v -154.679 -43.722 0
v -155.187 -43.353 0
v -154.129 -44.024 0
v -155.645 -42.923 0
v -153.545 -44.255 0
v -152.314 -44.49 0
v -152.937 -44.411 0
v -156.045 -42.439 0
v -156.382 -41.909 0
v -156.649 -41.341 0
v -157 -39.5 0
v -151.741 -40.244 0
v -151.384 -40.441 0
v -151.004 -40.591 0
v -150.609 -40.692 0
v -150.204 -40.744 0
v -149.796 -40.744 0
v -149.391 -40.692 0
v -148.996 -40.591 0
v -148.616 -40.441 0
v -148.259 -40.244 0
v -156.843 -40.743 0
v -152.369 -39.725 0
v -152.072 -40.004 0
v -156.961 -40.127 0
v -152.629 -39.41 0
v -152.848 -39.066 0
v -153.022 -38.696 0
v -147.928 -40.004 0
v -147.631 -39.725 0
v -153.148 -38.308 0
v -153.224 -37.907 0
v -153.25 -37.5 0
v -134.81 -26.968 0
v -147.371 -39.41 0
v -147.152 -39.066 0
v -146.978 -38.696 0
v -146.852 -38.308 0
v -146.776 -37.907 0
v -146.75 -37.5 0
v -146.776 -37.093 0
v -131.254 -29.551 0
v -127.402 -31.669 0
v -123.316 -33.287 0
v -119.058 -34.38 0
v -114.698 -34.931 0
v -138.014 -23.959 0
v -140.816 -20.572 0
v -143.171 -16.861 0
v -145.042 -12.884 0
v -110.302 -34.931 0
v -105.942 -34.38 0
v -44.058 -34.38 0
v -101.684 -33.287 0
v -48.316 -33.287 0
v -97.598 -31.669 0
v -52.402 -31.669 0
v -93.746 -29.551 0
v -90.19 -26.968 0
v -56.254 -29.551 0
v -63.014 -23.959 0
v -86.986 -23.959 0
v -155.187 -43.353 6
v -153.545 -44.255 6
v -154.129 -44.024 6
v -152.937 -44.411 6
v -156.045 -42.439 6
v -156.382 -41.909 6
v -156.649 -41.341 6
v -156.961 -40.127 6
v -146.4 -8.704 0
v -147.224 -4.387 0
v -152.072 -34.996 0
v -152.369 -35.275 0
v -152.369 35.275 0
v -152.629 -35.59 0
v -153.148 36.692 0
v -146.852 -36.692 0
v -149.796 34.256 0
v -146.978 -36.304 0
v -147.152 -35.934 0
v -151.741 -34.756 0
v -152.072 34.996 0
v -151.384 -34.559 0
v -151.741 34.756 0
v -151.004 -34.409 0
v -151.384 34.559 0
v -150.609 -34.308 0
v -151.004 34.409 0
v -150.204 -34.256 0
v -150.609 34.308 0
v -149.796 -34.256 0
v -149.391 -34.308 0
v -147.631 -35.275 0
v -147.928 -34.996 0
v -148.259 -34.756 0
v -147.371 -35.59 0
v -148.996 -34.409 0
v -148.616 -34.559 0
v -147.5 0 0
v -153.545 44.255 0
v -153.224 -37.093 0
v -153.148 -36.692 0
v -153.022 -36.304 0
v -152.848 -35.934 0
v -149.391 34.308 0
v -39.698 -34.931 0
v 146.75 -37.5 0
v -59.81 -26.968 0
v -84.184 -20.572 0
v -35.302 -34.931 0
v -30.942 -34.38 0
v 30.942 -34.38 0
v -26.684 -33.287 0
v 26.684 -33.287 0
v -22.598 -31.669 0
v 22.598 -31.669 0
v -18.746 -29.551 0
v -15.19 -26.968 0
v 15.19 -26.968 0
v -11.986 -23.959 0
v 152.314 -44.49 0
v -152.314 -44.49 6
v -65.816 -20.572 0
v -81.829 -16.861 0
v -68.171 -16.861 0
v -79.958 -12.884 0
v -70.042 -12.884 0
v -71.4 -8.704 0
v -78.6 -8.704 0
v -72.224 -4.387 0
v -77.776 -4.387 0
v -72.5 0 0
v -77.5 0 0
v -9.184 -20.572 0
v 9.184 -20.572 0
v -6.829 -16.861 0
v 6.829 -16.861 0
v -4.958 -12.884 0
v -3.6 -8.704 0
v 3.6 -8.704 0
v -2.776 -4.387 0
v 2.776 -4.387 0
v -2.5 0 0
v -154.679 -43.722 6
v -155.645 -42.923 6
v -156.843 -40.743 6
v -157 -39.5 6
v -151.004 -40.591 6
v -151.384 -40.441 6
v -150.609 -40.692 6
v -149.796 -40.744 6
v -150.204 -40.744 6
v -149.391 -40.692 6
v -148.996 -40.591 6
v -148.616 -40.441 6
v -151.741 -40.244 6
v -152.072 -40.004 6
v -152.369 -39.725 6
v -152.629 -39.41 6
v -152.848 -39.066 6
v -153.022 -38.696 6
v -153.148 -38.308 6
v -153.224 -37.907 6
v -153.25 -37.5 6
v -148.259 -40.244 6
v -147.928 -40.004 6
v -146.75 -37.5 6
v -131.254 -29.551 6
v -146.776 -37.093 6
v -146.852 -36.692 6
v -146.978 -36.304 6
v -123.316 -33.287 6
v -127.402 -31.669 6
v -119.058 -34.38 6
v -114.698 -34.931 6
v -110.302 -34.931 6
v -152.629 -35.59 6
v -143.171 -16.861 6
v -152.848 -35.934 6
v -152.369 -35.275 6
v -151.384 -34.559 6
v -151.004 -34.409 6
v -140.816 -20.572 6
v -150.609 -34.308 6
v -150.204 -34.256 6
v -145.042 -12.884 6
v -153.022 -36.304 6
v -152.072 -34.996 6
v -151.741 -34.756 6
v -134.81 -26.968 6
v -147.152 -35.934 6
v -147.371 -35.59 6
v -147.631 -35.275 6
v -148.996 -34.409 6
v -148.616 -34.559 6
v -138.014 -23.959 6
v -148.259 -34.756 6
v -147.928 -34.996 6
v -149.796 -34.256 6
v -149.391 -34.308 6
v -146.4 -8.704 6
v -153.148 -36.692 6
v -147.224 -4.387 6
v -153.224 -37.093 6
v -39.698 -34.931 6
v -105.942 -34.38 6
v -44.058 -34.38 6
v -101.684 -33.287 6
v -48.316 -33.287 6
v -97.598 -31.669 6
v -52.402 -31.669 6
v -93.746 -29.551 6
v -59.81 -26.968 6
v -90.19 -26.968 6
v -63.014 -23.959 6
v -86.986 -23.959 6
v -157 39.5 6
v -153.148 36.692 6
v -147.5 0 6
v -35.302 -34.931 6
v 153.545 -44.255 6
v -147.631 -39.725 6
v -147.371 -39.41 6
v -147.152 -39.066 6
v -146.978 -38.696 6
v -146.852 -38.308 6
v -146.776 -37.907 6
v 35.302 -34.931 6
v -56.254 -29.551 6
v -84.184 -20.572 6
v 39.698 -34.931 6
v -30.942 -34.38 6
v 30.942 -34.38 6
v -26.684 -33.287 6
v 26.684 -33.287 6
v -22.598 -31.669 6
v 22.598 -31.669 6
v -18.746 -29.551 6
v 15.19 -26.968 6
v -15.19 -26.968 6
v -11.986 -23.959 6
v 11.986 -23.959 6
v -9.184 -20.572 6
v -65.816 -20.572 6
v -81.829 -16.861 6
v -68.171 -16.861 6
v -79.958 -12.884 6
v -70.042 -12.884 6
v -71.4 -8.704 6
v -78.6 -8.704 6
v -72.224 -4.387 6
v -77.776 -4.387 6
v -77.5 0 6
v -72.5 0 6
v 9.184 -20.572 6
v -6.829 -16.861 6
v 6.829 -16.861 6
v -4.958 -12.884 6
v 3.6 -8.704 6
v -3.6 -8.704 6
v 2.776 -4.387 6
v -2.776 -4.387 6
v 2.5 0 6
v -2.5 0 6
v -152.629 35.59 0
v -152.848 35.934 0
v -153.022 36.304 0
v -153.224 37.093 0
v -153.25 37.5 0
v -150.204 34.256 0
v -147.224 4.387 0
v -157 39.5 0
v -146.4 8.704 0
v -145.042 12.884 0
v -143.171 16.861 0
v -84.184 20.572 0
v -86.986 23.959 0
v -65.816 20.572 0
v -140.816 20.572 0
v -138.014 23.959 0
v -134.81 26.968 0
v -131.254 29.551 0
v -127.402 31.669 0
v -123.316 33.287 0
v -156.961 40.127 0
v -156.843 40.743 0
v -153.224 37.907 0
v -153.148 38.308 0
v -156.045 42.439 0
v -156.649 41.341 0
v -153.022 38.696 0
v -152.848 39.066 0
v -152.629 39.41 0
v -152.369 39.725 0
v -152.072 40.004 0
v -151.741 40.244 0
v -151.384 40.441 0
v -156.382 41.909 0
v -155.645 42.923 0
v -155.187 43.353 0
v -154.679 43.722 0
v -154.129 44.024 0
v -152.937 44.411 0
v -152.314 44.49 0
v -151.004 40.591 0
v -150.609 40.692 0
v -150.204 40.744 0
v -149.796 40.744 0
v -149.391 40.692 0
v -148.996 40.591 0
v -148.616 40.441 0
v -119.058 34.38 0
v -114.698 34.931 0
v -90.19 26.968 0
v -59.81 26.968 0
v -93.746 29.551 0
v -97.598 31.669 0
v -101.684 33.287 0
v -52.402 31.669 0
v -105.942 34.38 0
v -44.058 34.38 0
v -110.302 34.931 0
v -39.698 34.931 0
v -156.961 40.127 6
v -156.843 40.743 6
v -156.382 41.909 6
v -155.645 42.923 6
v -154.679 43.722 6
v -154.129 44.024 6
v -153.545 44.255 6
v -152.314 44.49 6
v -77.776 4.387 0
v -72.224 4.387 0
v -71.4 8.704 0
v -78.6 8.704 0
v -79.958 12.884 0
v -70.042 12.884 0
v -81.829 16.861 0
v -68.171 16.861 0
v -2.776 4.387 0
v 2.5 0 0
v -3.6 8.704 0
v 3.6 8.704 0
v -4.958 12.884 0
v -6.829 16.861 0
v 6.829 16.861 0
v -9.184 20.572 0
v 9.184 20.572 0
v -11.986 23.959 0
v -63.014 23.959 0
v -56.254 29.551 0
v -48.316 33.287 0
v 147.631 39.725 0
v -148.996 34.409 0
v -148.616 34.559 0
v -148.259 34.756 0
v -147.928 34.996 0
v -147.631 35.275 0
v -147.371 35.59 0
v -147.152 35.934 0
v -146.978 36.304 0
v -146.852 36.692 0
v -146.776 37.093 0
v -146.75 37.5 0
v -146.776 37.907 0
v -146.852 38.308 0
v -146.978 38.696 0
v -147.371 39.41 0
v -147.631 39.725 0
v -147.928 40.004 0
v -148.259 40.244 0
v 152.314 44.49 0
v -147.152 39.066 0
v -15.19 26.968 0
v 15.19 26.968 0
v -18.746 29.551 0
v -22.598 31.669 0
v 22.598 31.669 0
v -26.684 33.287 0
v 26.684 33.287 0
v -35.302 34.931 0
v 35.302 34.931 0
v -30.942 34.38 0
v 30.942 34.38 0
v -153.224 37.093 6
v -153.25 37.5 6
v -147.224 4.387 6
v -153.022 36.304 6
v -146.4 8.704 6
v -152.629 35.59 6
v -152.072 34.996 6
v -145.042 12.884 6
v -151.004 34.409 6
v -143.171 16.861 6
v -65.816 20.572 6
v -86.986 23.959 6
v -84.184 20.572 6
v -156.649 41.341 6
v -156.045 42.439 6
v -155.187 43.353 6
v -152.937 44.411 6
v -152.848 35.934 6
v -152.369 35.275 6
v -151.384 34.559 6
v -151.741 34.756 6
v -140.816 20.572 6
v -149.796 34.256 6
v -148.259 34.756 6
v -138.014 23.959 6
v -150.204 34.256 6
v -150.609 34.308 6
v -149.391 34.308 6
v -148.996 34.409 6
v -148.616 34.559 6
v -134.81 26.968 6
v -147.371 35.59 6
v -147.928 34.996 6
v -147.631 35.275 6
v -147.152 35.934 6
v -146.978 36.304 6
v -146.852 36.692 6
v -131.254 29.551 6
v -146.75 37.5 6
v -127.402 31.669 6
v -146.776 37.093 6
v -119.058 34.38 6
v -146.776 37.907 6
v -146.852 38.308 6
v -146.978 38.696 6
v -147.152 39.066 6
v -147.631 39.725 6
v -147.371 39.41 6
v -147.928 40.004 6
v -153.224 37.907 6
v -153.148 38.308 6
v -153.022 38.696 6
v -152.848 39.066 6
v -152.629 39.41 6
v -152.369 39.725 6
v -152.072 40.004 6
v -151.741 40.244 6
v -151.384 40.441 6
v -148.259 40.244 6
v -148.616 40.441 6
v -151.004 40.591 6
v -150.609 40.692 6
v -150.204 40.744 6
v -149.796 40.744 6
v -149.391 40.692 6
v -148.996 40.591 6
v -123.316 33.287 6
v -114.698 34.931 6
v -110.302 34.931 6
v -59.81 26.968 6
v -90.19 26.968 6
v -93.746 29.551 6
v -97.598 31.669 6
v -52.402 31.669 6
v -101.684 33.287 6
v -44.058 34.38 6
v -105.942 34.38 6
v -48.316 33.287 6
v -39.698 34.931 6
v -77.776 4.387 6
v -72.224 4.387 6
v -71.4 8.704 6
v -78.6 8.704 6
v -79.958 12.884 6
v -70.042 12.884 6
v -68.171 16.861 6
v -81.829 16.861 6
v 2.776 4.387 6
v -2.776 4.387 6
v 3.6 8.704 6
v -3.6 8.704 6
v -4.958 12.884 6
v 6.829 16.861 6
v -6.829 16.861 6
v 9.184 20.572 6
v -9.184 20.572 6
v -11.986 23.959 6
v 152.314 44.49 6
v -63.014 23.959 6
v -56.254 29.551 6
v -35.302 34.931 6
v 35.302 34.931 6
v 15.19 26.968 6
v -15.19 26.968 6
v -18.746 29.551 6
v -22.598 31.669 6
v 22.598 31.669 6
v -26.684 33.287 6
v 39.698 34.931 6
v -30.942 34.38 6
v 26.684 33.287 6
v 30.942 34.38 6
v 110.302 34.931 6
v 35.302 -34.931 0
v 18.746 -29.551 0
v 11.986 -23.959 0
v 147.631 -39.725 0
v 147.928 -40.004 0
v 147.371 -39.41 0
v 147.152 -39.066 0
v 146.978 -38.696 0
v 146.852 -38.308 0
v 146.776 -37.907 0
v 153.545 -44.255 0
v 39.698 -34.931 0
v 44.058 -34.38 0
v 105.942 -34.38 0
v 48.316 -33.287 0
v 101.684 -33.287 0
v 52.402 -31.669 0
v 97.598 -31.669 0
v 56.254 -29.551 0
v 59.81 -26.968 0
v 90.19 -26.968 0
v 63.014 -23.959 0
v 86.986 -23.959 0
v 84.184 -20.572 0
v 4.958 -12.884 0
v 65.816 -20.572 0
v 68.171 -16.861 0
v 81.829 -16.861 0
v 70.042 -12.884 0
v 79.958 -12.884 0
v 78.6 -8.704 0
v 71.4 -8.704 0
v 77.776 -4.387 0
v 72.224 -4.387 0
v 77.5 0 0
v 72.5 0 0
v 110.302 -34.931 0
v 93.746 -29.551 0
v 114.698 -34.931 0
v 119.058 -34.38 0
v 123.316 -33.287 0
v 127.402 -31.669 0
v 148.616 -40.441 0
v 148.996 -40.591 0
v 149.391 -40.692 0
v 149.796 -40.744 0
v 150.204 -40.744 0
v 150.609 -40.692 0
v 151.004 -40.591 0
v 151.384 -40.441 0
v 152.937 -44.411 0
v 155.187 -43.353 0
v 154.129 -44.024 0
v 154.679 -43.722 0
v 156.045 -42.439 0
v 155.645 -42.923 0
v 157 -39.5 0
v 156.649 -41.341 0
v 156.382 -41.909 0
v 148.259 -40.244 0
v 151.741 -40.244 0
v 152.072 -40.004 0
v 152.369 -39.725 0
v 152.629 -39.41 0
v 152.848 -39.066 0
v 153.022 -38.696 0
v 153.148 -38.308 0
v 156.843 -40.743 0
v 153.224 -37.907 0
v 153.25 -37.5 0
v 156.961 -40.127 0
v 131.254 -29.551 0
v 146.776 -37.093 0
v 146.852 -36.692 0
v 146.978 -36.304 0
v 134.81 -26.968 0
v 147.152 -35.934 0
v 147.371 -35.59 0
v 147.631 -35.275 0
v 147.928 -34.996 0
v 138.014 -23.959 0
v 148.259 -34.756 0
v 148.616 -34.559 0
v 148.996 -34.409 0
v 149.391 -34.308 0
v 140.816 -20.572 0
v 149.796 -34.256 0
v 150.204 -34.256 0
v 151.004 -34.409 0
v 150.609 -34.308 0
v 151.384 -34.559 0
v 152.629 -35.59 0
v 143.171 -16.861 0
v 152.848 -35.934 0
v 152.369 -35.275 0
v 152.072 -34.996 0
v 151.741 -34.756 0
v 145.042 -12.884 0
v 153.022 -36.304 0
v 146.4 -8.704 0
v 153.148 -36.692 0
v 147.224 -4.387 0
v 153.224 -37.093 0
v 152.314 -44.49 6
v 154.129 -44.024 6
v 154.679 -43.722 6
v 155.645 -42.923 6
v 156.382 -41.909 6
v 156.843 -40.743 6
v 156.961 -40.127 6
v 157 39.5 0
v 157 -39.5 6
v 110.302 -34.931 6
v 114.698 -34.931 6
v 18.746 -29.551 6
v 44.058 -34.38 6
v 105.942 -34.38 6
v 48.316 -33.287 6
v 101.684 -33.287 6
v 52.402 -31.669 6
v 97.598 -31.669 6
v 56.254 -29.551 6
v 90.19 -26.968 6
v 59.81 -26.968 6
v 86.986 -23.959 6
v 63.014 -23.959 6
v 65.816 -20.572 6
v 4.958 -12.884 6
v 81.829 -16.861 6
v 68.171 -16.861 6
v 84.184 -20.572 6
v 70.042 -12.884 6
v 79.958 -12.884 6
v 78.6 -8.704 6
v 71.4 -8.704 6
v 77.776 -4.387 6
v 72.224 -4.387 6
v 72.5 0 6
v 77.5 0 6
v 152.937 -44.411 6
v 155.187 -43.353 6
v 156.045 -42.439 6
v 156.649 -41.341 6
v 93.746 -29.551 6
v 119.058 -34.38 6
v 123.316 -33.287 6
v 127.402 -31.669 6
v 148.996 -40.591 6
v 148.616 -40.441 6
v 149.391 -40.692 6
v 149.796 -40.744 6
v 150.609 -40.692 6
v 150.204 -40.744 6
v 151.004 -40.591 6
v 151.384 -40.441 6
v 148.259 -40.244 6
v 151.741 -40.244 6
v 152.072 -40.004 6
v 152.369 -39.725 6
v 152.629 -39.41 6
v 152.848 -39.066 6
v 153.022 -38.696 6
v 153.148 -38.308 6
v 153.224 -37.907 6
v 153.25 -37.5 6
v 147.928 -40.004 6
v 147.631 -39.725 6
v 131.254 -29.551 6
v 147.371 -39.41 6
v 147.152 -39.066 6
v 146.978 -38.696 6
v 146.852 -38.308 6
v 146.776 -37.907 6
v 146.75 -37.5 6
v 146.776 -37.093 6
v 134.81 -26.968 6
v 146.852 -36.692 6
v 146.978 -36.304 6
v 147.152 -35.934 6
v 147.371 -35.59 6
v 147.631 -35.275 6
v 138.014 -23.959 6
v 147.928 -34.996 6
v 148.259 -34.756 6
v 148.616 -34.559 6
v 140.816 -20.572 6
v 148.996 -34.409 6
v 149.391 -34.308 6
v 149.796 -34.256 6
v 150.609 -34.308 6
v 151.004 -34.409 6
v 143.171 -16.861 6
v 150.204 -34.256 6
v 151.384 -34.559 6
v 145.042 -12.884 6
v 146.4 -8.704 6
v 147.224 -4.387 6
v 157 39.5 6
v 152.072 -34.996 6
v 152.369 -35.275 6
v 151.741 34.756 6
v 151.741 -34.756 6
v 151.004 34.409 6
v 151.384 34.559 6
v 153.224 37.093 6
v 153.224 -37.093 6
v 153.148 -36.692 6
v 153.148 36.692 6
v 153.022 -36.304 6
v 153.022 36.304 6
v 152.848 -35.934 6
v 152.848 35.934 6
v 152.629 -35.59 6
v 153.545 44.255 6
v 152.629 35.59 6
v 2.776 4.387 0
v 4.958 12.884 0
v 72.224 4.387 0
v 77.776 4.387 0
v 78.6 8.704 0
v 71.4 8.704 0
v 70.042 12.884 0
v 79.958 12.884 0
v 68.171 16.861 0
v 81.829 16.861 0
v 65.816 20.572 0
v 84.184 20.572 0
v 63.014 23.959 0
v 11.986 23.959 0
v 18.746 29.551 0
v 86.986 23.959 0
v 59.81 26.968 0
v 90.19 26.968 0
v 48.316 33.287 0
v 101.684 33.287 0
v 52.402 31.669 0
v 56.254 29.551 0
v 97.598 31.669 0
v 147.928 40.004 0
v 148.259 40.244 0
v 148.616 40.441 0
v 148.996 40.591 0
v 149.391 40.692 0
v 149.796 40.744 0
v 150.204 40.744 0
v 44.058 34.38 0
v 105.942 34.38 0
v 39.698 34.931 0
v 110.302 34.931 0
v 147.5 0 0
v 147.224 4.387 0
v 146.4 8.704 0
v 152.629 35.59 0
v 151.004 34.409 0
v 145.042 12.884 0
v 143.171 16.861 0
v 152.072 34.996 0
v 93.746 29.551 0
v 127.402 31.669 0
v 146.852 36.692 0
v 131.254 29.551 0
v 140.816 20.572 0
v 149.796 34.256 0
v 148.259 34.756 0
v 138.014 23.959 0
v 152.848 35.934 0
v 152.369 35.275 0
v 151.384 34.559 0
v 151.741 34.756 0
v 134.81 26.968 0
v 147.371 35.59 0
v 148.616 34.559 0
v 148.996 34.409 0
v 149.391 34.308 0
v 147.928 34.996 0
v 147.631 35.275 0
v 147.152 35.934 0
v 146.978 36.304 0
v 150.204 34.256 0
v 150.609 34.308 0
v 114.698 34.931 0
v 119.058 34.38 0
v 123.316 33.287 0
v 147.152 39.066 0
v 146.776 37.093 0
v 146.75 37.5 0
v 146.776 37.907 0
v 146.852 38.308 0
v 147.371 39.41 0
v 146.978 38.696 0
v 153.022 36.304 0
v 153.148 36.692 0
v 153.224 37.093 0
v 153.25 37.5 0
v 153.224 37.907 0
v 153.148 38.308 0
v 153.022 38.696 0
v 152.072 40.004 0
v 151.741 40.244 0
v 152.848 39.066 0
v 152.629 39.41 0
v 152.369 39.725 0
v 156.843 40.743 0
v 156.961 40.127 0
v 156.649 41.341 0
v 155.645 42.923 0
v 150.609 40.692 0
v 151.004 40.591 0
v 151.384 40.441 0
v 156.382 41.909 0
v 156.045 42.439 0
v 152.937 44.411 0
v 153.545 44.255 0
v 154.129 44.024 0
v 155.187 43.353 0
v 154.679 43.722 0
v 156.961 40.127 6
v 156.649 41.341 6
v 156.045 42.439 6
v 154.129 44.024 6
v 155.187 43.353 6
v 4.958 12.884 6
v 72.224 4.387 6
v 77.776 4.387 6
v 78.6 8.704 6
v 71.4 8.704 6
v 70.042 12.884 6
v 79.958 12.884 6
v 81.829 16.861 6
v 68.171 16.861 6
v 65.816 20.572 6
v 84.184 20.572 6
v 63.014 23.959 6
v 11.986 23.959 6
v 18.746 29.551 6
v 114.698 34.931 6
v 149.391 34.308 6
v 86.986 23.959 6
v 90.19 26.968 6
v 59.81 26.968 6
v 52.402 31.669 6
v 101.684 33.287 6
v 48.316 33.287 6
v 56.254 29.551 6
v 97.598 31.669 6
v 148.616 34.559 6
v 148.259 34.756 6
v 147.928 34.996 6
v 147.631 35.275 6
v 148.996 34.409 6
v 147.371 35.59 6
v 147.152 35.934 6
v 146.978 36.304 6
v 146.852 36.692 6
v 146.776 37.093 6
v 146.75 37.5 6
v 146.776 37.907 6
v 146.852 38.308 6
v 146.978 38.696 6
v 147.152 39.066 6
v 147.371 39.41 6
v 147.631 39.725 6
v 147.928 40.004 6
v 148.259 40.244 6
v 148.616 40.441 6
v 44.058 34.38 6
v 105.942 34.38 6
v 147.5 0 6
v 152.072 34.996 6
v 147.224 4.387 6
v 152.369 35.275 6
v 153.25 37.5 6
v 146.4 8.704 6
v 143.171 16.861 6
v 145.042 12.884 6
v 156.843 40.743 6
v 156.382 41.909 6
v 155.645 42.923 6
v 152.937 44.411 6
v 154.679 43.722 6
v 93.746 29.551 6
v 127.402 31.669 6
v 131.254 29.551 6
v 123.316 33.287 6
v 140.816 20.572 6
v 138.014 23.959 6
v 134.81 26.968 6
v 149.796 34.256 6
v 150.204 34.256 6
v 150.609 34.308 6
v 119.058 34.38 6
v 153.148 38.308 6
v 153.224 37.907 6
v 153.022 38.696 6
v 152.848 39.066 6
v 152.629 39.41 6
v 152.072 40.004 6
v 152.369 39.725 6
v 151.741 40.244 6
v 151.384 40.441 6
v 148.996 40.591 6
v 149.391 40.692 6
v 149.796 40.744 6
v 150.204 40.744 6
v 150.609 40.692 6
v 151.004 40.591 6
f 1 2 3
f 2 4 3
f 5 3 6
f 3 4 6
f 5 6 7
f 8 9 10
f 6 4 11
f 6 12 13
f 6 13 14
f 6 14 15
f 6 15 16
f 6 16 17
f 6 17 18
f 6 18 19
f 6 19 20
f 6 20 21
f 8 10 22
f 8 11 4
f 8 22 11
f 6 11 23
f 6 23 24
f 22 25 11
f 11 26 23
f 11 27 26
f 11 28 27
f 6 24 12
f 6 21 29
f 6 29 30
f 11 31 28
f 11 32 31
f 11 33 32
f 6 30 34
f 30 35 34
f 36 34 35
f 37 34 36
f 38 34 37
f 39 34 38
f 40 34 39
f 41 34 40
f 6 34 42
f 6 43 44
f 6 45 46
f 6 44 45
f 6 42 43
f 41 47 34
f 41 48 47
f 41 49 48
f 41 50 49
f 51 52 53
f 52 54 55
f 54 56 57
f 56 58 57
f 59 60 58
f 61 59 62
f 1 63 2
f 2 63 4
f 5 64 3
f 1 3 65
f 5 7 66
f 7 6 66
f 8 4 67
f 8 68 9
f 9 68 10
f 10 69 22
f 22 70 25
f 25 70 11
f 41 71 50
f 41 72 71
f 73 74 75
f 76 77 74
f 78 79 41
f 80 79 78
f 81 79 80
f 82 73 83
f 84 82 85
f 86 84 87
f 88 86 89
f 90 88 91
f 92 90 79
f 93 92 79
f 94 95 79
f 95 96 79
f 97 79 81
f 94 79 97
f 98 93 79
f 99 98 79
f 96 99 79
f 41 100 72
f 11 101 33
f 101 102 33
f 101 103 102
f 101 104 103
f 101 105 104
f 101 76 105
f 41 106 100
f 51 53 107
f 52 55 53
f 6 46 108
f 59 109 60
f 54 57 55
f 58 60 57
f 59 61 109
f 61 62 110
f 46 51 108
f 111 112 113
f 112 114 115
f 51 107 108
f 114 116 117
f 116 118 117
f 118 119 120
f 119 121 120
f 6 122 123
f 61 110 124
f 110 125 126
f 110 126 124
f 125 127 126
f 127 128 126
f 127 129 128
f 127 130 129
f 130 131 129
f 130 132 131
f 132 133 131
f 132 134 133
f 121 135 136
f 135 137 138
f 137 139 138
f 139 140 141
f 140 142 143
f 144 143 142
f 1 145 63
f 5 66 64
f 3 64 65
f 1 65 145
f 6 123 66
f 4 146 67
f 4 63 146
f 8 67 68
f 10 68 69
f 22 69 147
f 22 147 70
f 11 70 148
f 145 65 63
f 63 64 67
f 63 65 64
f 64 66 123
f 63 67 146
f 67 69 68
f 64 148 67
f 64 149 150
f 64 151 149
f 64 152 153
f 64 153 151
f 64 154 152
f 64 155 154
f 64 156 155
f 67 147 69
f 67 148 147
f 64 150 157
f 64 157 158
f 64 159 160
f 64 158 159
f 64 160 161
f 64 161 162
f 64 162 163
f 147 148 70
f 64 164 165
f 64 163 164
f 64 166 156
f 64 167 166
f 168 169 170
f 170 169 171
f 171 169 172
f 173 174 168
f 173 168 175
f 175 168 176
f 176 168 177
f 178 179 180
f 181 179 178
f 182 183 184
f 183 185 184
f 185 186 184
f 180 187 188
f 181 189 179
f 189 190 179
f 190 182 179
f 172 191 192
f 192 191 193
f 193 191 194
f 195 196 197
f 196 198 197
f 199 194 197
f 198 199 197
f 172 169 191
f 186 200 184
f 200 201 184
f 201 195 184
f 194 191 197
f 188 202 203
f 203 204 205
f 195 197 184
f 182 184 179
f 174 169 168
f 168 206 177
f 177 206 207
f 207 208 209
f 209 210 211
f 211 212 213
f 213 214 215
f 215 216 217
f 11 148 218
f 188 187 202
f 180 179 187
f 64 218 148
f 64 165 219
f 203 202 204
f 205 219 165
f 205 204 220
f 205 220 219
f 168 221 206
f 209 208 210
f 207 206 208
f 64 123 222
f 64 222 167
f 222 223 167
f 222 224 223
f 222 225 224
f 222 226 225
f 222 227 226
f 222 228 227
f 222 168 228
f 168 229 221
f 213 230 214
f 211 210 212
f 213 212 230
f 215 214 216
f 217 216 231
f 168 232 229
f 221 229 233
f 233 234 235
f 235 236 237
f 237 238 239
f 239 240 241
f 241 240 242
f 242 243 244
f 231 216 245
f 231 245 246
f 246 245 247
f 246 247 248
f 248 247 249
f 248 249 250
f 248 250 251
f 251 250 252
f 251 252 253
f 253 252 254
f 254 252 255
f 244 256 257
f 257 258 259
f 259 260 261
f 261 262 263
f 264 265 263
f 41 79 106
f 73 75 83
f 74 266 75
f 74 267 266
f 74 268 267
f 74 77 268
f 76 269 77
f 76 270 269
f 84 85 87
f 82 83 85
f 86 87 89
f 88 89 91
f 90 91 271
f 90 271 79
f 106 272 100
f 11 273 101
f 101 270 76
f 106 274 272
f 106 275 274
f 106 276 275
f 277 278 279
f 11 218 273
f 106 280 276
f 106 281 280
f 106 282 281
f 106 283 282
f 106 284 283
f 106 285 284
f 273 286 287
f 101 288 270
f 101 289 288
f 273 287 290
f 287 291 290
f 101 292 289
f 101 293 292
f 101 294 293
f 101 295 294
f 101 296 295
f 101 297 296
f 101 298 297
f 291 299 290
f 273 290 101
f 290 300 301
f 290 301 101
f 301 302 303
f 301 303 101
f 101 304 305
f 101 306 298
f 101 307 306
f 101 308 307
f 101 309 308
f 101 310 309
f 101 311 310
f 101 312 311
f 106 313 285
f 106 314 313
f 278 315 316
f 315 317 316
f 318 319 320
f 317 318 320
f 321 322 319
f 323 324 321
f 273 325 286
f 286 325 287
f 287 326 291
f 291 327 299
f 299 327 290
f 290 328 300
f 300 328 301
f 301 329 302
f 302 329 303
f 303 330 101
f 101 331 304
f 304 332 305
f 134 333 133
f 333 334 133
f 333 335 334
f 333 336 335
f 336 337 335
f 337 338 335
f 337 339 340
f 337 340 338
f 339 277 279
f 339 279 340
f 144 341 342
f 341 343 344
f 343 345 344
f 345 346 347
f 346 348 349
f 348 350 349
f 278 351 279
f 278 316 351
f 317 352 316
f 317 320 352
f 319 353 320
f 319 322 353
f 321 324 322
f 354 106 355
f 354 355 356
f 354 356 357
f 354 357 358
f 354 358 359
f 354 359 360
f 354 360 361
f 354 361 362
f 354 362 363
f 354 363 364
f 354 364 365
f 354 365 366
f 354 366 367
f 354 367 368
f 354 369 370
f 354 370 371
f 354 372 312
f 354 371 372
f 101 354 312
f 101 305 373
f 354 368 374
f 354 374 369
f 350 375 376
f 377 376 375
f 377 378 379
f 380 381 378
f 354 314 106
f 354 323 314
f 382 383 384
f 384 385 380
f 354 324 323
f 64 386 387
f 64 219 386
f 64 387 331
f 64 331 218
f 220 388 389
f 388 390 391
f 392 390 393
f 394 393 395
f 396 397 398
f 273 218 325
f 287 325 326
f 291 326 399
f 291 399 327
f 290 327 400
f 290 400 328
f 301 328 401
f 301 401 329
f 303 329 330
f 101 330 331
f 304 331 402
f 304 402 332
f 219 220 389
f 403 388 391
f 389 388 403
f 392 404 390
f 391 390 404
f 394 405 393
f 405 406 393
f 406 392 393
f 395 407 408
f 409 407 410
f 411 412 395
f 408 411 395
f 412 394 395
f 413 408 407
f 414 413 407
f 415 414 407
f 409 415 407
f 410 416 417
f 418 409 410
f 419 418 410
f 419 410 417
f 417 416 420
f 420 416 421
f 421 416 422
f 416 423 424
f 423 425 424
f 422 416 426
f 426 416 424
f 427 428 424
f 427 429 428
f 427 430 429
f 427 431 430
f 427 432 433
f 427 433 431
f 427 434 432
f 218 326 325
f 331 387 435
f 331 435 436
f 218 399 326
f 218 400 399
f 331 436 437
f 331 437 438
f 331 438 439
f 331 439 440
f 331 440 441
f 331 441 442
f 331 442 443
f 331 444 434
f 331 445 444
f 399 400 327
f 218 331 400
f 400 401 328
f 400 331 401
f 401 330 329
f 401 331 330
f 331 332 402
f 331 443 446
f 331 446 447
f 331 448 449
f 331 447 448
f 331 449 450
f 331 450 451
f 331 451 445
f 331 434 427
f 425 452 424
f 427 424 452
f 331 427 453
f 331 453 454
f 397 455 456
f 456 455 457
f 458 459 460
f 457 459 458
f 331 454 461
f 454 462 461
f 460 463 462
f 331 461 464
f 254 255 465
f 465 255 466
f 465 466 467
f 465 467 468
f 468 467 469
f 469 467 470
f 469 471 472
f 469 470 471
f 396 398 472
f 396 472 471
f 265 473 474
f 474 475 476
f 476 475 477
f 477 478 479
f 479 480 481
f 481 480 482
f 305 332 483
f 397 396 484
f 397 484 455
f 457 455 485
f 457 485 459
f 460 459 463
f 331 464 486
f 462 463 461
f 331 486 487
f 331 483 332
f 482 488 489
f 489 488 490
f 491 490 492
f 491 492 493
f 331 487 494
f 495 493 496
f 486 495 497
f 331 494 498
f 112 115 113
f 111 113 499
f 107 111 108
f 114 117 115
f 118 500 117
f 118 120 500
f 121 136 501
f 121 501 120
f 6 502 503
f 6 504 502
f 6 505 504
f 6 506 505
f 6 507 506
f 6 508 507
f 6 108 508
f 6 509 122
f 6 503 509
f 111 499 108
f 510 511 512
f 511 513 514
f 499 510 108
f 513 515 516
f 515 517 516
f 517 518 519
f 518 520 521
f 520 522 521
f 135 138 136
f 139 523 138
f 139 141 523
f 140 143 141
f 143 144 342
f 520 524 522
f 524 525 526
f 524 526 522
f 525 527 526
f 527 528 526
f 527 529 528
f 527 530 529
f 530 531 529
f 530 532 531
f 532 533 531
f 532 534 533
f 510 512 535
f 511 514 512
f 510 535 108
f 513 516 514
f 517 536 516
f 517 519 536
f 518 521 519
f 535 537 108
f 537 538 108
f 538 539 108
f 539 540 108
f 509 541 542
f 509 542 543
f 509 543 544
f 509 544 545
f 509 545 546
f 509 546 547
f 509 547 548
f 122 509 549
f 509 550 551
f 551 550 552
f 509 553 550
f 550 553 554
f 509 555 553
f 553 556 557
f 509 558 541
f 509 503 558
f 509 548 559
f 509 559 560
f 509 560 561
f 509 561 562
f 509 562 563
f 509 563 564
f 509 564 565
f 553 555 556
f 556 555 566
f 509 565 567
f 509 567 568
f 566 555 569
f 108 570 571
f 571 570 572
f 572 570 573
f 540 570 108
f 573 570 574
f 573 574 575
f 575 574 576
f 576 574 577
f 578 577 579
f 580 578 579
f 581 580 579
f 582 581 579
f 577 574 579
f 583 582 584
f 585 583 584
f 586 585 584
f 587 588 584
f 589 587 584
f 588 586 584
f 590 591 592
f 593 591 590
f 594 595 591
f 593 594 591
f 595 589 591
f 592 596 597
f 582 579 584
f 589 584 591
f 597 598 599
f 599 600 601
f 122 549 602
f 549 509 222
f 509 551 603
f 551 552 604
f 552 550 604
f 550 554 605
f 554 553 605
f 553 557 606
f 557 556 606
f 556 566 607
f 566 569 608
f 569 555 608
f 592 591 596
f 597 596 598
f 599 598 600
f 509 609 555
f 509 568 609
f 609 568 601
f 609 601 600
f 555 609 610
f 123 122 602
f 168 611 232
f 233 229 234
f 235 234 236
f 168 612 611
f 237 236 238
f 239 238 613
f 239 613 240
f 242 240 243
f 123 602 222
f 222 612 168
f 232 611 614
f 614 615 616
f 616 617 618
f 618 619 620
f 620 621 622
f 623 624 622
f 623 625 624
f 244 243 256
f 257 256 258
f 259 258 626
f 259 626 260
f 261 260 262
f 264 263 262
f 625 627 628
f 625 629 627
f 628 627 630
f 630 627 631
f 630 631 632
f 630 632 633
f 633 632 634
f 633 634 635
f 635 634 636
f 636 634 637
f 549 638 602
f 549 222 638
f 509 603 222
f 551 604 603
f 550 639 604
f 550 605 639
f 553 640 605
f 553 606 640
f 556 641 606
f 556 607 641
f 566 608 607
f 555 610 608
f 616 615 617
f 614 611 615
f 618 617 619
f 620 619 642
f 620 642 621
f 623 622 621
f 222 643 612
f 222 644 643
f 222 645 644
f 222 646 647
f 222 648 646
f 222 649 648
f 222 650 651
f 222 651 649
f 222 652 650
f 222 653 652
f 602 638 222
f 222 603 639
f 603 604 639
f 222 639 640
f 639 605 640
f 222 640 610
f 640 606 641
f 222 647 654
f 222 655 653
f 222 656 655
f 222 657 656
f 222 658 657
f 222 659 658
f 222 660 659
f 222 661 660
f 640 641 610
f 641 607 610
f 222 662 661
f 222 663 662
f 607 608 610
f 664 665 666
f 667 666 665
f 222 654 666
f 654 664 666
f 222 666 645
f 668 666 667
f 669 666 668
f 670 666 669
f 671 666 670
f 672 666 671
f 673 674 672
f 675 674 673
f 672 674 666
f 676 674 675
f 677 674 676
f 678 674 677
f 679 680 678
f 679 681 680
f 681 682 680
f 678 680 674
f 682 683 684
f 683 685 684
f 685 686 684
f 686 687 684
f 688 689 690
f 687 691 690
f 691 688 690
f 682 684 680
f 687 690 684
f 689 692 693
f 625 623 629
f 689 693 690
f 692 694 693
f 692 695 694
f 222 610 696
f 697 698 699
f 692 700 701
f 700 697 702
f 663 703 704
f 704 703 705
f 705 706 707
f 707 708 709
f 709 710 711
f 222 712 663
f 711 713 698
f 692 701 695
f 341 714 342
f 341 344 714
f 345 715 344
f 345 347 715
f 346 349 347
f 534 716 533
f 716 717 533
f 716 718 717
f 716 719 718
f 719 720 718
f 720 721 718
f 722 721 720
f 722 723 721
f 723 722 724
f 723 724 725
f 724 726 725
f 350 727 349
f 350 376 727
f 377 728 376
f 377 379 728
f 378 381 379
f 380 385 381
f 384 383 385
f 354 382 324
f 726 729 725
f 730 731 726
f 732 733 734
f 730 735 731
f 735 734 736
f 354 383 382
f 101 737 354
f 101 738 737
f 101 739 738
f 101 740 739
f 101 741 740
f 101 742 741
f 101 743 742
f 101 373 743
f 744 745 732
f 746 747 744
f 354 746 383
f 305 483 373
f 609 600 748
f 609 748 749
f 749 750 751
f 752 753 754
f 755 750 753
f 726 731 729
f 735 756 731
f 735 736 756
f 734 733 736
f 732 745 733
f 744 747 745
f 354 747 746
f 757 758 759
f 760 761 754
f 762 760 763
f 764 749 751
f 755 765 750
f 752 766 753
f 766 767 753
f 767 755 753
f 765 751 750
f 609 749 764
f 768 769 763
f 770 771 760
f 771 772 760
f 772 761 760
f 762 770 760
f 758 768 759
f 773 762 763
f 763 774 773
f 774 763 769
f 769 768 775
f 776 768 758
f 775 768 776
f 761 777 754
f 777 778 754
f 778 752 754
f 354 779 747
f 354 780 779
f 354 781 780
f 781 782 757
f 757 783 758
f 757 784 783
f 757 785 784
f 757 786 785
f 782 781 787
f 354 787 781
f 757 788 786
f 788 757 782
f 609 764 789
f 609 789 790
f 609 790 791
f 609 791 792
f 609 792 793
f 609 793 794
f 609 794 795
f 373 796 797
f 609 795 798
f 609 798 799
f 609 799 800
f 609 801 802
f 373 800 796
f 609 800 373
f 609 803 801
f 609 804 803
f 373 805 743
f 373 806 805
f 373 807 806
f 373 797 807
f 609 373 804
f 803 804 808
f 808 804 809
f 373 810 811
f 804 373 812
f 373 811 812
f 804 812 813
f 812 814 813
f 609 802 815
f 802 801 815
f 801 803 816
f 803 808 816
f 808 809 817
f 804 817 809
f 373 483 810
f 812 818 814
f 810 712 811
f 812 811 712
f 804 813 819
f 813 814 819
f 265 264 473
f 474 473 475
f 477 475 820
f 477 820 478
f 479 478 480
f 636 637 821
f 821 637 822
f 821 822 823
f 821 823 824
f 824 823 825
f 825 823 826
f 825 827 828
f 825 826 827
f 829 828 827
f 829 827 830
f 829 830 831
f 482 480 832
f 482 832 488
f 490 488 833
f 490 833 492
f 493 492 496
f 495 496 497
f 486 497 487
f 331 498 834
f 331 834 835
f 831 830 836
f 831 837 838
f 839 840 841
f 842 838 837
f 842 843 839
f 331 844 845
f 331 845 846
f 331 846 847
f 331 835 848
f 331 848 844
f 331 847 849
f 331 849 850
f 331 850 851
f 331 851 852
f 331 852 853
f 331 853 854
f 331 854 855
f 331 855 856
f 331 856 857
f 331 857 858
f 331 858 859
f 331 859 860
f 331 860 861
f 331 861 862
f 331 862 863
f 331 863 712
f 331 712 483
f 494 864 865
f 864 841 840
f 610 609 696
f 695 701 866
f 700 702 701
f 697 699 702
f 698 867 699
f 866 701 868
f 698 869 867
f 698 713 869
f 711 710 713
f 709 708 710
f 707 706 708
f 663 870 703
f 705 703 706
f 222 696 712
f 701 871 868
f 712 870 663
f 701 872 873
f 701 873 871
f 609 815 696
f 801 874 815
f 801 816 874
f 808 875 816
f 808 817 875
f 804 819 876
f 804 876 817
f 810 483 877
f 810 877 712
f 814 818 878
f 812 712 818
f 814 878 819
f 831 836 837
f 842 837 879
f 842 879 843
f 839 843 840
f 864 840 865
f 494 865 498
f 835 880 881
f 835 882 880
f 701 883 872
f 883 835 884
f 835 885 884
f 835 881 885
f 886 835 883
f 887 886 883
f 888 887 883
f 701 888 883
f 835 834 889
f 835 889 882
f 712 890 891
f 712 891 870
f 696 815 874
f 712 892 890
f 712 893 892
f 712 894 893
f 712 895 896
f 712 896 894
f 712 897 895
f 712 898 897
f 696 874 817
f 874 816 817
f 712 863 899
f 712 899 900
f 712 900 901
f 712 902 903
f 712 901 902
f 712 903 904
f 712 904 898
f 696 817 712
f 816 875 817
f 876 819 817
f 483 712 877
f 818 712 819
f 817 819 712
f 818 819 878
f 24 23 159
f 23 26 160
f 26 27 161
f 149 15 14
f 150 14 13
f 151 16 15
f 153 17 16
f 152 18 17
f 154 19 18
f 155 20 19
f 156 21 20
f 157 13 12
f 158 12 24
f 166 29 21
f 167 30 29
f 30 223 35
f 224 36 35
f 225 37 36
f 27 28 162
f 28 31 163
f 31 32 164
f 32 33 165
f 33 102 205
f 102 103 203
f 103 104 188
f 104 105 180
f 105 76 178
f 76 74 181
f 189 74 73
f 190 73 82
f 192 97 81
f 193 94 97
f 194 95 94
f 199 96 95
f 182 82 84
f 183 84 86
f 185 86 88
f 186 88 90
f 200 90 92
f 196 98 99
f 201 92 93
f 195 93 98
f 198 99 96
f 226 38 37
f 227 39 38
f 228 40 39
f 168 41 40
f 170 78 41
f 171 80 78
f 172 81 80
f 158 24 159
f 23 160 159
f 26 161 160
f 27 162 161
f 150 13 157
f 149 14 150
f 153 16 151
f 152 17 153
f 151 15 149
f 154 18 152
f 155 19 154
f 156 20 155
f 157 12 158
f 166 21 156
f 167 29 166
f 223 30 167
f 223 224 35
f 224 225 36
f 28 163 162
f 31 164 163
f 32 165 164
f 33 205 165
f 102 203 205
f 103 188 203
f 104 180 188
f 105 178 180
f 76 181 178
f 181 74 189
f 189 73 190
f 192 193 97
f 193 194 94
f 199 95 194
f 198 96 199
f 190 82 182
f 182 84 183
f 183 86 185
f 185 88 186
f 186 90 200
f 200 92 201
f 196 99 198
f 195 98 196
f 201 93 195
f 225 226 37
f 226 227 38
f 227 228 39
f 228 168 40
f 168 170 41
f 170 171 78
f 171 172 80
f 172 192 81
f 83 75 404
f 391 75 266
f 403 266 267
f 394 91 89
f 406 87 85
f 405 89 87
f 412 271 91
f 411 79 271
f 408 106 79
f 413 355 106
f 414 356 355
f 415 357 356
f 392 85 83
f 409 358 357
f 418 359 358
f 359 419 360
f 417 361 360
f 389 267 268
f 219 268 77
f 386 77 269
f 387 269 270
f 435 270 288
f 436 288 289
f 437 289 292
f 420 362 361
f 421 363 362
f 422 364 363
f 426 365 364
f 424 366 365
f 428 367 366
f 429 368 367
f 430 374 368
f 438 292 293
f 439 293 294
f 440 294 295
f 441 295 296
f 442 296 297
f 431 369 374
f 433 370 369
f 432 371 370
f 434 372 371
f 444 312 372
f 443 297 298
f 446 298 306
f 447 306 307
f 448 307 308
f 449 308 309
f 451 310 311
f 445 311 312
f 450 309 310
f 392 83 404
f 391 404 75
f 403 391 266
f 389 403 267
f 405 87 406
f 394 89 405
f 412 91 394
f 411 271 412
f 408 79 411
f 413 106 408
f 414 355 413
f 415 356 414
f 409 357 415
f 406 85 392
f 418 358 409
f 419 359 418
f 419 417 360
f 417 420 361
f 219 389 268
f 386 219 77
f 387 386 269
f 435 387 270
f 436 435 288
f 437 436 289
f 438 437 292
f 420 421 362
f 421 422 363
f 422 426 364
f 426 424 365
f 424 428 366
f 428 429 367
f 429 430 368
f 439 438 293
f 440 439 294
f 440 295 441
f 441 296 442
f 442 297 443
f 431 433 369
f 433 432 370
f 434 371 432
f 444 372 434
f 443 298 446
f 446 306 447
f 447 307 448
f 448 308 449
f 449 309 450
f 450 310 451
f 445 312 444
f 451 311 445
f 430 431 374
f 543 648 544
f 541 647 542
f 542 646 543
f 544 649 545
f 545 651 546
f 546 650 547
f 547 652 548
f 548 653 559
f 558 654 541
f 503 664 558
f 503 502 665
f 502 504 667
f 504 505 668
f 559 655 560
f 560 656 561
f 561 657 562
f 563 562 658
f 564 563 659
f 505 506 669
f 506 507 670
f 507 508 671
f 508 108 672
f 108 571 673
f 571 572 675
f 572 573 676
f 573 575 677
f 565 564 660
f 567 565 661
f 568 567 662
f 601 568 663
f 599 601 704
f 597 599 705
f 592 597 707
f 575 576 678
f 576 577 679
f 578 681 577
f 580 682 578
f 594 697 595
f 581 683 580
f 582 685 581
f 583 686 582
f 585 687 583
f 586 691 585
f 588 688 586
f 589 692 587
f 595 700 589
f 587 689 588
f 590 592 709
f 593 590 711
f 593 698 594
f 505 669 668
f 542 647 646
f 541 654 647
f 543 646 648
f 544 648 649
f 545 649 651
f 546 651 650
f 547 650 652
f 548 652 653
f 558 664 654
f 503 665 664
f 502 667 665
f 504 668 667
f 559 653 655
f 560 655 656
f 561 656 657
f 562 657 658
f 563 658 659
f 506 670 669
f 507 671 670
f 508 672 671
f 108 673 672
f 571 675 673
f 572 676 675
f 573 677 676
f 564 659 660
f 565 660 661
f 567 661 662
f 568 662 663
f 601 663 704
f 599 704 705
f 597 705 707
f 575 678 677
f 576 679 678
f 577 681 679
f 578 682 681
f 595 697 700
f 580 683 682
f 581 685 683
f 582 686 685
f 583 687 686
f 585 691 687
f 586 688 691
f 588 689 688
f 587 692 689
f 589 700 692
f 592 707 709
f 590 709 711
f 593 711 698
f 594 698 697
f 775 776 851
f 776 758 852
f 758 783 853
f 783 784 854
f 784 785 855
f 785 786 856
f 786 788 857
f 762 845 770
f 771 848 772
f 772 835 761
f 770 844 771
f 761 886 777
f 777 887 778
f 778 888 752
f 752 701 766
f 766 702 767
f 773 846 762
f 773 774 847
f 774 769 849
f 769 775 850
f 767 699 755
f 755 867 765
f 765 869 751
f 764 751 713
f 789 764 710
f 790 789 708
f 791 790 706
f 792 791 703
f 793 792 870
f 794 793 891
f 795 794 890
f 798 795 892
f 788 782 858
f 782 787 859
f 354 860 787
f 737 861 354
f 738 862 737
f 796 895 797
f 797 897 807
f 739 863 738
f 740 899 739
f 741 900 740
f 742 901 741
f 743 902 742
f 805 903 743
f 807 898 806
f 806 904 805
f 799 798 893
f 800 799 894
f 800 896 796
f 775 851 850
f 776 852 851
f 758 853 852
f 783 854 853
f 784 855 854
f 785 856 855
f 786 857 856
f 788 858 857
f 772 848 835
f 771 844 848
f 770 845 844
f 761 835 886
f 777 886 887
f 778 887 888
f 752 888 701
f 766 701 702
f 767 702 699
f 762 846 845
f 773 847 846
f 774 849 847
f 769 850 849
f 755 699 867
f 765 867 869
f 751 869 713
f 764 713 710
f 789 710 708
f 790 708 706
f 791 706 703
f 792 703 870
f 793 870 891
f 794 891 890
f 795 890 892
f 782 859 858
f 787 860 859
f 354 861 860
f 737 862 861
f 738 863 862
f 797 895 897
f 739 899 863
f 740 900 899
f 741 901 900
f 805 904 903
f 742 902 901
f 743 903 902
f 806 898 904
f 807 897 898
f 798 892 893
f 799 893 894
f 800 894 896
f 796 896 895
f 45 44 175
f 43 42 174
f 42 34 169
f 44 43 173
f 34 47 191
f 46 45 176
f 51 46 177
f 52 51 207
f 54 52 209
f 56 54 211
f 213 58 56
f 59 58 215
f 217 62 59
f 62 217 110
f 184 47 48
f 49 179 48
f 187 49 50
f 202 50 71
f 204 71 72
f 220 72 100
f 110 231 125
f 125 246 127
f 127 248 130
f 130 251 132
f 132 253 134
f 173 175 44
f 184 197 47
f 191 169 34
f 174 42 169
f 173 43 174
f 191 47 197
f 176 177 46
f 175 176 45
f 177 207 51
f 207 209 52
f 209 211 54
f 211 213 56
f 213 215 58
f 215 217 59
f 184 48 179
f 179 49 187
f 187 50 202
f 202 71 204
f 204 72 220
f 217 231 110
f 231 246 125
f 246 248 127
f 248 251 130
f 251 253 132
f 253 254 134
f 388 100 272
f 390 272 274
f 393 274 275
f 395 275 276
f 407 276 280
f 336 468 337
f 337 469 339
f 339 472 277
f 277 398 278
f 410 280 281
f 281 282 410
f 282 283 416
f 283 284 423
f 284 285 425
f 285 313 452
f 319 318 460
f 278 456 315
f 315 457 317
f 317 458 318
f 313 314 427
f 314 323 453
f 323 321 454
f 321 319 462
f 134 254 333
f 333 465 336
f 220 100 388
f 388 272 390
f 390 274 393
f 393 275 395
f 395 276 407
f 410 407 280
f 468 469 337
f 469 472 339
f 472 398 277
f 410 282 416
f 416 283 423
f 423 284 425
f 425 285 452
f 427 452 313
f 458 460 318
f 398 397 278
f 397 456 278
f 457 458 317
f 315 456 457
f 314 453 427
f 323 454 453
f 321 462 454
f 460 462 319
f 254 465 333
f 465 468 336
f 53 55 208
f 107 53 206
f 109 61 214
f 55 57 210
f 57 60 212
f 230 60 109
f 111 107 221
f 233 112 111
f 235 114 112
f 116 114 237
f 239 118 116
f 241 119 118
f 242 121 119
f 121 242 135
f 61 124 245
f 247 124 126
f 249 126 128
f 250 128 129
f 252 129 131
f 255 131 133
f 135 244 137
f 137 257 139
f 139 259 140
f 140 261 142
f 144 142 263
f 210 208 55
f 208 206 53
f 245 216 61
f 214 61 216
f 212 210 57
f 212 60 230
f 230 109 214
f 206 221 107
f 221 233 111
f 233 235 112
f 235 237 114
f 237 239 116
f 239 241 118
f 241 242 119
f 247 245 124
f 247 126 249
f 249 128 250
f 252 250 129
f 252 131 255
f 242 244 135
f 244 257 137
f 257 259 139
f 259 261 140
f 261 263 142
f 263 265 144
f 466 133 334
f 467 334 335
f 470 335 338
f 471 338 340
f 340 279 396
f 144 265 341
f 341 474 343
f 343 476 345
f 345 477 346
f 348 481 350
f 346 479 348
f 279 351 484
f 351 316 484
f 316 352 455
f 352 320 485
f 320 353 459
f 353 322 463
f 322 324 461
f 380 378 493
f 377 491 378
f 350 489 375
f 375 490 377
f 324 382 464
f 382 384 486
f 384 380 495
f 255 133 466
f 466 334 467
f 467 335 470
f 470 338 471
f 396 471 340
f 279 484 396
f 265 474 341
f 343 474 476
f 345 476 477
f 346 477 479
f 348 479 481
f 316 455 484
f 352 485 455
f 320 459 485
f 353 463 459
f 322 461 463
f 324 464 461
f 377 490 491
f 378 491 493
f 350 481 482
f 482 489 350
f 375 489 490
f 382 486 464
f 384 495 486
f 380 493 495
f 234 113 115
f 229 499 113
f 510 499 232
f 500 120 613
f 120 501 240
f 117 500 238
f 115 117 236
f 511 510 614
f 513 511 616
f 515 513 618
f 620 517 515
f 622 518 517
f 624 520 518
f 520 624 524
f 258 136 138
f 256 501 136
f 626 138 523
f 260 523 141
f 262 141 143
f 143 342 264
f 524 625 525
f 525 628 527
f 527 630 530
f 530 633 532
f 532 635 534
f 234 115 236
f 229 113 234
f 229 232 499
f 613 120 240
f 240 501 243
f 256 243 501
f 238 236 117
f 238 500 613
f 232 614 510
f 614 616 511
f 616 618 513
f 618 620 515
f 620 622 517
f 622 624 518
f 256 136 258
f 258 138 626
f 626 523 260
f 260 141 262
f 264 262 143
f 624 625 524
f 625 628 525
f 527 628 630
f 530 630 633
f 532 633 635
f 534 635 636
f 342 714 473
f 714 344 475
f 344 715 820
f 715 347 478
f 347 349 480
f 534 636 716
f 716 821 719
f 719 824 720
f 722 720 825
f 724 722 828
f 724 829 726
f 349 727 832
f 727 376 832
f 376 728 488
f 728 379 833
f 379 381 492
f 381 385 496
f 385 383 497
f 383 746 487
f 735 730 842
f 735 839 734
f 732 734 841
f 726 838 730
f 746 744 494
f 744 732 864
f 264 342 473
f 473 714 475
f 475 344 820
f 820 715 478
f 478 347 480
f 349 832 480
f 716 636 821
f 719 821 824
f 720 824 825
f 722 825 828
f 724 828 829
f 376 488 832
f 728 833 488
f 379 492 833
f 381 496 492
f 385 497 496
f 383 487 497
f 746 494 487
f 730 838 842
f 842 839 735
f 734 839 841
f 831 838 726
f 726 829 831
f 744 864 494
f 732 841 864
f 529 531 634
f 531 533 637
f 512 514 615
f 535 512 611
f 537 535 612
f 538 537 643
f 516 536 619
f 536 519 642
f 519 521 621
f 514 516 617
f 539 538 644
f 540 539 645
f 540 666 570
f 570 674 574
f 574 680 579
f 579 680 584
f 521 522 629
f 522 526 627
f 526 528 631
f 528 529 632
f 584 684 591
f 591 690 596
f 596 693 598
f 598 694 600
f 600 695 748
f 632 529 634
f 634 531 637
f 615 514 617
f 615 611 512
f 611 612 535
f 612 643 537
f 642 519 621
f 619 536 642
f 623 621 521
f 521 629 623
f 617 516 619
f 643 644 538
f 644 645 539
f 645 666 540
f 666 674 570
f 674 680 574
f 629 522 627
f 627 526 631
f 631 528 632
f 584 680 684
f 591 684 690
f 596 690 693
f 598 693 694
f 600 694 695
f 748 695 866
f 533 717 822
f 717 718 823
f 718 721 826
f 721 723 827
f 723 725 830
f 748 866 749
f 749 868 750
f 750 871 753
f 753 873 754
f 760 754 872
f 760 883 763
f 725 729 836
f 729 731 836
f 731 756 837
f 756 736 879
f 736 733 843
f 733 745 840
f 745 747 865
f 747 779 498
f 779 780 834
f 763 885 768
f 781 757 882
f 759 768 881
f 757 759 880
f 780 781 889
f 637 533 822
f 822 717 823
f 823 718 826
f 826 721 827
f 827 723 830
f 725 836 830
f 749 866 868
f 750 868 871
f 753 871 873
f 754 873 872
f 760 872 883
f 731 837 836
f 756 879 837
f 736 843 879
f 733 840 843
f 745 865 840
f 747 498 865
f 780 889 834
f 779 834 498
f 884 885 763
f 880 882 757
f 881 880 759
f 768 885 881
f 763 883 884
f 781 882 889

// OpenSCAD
$fn = 50;

difference() {
	union() {
		hull() {
			translate(v = [-152.0, 39.5, 0]) {
				cylinder(h = 6, r = 5);
			}
			translate(v = [152.0, 39.5, 0]) {
				cylinder(h = 6, r = 5);
			}
			translate(v = [-152.0, -39.5, 0]) {
				cylinder(h = 6, r = 5);
			}
			translate(v = [152.0, -39.5, 0]) {
				cylinder(h = 6, r = 5);
			}
		}
	}
	union() {
		translate(v = [-150.0, -37.5, -100.0]) {
			cylinder(h = 200, r = 3.25);
		}
		translate(v = [-150.0, 37.5, -100.0]) {
			cylinder(h = 200, r = 3.25);
		}
		translate(v = [150.0, -37.5, -100.0]) {
			cylinder(h = 200, r = 3.25);
		}
		translate(v = [150.0, 37.5, -100.0]) {
			cylinder(h = 200, r = 3.25);
		}
		translate(v = [-150.0, -37.5, -100.0]) {
			cylinder(h = 200, r = 1.8);
		}
		translate(v = [-150.0, 37.5, -100.0]) {
			cylinder(h = 200, r = 1.8);
		}
		translate(v = [150.0, -37.5, -100.0]) {
			cylinder(h = 200, r = 1.8);
		}
		translate(v = [150.0, 37.5, -100.0]) {
			cylinder(h = 200, r = 1.8);
		}
		translate(v = [-112.5, 0, 0.0]) {
			cylinder(h = 6, r = 35.0);
		}
		translate(v = [-37.5, 0, 0.0]) {
			cylinder(h = 6, r = 35.0);
		}
		translate(v = [37.5, 0, 0.0]) {
			cylinder(h = 6, r = 35.0);
		}
		translate(v = [112.5, 0, 0.0]) {
			cylinder(h = 6, r = 35.0);
		}
	}
}
